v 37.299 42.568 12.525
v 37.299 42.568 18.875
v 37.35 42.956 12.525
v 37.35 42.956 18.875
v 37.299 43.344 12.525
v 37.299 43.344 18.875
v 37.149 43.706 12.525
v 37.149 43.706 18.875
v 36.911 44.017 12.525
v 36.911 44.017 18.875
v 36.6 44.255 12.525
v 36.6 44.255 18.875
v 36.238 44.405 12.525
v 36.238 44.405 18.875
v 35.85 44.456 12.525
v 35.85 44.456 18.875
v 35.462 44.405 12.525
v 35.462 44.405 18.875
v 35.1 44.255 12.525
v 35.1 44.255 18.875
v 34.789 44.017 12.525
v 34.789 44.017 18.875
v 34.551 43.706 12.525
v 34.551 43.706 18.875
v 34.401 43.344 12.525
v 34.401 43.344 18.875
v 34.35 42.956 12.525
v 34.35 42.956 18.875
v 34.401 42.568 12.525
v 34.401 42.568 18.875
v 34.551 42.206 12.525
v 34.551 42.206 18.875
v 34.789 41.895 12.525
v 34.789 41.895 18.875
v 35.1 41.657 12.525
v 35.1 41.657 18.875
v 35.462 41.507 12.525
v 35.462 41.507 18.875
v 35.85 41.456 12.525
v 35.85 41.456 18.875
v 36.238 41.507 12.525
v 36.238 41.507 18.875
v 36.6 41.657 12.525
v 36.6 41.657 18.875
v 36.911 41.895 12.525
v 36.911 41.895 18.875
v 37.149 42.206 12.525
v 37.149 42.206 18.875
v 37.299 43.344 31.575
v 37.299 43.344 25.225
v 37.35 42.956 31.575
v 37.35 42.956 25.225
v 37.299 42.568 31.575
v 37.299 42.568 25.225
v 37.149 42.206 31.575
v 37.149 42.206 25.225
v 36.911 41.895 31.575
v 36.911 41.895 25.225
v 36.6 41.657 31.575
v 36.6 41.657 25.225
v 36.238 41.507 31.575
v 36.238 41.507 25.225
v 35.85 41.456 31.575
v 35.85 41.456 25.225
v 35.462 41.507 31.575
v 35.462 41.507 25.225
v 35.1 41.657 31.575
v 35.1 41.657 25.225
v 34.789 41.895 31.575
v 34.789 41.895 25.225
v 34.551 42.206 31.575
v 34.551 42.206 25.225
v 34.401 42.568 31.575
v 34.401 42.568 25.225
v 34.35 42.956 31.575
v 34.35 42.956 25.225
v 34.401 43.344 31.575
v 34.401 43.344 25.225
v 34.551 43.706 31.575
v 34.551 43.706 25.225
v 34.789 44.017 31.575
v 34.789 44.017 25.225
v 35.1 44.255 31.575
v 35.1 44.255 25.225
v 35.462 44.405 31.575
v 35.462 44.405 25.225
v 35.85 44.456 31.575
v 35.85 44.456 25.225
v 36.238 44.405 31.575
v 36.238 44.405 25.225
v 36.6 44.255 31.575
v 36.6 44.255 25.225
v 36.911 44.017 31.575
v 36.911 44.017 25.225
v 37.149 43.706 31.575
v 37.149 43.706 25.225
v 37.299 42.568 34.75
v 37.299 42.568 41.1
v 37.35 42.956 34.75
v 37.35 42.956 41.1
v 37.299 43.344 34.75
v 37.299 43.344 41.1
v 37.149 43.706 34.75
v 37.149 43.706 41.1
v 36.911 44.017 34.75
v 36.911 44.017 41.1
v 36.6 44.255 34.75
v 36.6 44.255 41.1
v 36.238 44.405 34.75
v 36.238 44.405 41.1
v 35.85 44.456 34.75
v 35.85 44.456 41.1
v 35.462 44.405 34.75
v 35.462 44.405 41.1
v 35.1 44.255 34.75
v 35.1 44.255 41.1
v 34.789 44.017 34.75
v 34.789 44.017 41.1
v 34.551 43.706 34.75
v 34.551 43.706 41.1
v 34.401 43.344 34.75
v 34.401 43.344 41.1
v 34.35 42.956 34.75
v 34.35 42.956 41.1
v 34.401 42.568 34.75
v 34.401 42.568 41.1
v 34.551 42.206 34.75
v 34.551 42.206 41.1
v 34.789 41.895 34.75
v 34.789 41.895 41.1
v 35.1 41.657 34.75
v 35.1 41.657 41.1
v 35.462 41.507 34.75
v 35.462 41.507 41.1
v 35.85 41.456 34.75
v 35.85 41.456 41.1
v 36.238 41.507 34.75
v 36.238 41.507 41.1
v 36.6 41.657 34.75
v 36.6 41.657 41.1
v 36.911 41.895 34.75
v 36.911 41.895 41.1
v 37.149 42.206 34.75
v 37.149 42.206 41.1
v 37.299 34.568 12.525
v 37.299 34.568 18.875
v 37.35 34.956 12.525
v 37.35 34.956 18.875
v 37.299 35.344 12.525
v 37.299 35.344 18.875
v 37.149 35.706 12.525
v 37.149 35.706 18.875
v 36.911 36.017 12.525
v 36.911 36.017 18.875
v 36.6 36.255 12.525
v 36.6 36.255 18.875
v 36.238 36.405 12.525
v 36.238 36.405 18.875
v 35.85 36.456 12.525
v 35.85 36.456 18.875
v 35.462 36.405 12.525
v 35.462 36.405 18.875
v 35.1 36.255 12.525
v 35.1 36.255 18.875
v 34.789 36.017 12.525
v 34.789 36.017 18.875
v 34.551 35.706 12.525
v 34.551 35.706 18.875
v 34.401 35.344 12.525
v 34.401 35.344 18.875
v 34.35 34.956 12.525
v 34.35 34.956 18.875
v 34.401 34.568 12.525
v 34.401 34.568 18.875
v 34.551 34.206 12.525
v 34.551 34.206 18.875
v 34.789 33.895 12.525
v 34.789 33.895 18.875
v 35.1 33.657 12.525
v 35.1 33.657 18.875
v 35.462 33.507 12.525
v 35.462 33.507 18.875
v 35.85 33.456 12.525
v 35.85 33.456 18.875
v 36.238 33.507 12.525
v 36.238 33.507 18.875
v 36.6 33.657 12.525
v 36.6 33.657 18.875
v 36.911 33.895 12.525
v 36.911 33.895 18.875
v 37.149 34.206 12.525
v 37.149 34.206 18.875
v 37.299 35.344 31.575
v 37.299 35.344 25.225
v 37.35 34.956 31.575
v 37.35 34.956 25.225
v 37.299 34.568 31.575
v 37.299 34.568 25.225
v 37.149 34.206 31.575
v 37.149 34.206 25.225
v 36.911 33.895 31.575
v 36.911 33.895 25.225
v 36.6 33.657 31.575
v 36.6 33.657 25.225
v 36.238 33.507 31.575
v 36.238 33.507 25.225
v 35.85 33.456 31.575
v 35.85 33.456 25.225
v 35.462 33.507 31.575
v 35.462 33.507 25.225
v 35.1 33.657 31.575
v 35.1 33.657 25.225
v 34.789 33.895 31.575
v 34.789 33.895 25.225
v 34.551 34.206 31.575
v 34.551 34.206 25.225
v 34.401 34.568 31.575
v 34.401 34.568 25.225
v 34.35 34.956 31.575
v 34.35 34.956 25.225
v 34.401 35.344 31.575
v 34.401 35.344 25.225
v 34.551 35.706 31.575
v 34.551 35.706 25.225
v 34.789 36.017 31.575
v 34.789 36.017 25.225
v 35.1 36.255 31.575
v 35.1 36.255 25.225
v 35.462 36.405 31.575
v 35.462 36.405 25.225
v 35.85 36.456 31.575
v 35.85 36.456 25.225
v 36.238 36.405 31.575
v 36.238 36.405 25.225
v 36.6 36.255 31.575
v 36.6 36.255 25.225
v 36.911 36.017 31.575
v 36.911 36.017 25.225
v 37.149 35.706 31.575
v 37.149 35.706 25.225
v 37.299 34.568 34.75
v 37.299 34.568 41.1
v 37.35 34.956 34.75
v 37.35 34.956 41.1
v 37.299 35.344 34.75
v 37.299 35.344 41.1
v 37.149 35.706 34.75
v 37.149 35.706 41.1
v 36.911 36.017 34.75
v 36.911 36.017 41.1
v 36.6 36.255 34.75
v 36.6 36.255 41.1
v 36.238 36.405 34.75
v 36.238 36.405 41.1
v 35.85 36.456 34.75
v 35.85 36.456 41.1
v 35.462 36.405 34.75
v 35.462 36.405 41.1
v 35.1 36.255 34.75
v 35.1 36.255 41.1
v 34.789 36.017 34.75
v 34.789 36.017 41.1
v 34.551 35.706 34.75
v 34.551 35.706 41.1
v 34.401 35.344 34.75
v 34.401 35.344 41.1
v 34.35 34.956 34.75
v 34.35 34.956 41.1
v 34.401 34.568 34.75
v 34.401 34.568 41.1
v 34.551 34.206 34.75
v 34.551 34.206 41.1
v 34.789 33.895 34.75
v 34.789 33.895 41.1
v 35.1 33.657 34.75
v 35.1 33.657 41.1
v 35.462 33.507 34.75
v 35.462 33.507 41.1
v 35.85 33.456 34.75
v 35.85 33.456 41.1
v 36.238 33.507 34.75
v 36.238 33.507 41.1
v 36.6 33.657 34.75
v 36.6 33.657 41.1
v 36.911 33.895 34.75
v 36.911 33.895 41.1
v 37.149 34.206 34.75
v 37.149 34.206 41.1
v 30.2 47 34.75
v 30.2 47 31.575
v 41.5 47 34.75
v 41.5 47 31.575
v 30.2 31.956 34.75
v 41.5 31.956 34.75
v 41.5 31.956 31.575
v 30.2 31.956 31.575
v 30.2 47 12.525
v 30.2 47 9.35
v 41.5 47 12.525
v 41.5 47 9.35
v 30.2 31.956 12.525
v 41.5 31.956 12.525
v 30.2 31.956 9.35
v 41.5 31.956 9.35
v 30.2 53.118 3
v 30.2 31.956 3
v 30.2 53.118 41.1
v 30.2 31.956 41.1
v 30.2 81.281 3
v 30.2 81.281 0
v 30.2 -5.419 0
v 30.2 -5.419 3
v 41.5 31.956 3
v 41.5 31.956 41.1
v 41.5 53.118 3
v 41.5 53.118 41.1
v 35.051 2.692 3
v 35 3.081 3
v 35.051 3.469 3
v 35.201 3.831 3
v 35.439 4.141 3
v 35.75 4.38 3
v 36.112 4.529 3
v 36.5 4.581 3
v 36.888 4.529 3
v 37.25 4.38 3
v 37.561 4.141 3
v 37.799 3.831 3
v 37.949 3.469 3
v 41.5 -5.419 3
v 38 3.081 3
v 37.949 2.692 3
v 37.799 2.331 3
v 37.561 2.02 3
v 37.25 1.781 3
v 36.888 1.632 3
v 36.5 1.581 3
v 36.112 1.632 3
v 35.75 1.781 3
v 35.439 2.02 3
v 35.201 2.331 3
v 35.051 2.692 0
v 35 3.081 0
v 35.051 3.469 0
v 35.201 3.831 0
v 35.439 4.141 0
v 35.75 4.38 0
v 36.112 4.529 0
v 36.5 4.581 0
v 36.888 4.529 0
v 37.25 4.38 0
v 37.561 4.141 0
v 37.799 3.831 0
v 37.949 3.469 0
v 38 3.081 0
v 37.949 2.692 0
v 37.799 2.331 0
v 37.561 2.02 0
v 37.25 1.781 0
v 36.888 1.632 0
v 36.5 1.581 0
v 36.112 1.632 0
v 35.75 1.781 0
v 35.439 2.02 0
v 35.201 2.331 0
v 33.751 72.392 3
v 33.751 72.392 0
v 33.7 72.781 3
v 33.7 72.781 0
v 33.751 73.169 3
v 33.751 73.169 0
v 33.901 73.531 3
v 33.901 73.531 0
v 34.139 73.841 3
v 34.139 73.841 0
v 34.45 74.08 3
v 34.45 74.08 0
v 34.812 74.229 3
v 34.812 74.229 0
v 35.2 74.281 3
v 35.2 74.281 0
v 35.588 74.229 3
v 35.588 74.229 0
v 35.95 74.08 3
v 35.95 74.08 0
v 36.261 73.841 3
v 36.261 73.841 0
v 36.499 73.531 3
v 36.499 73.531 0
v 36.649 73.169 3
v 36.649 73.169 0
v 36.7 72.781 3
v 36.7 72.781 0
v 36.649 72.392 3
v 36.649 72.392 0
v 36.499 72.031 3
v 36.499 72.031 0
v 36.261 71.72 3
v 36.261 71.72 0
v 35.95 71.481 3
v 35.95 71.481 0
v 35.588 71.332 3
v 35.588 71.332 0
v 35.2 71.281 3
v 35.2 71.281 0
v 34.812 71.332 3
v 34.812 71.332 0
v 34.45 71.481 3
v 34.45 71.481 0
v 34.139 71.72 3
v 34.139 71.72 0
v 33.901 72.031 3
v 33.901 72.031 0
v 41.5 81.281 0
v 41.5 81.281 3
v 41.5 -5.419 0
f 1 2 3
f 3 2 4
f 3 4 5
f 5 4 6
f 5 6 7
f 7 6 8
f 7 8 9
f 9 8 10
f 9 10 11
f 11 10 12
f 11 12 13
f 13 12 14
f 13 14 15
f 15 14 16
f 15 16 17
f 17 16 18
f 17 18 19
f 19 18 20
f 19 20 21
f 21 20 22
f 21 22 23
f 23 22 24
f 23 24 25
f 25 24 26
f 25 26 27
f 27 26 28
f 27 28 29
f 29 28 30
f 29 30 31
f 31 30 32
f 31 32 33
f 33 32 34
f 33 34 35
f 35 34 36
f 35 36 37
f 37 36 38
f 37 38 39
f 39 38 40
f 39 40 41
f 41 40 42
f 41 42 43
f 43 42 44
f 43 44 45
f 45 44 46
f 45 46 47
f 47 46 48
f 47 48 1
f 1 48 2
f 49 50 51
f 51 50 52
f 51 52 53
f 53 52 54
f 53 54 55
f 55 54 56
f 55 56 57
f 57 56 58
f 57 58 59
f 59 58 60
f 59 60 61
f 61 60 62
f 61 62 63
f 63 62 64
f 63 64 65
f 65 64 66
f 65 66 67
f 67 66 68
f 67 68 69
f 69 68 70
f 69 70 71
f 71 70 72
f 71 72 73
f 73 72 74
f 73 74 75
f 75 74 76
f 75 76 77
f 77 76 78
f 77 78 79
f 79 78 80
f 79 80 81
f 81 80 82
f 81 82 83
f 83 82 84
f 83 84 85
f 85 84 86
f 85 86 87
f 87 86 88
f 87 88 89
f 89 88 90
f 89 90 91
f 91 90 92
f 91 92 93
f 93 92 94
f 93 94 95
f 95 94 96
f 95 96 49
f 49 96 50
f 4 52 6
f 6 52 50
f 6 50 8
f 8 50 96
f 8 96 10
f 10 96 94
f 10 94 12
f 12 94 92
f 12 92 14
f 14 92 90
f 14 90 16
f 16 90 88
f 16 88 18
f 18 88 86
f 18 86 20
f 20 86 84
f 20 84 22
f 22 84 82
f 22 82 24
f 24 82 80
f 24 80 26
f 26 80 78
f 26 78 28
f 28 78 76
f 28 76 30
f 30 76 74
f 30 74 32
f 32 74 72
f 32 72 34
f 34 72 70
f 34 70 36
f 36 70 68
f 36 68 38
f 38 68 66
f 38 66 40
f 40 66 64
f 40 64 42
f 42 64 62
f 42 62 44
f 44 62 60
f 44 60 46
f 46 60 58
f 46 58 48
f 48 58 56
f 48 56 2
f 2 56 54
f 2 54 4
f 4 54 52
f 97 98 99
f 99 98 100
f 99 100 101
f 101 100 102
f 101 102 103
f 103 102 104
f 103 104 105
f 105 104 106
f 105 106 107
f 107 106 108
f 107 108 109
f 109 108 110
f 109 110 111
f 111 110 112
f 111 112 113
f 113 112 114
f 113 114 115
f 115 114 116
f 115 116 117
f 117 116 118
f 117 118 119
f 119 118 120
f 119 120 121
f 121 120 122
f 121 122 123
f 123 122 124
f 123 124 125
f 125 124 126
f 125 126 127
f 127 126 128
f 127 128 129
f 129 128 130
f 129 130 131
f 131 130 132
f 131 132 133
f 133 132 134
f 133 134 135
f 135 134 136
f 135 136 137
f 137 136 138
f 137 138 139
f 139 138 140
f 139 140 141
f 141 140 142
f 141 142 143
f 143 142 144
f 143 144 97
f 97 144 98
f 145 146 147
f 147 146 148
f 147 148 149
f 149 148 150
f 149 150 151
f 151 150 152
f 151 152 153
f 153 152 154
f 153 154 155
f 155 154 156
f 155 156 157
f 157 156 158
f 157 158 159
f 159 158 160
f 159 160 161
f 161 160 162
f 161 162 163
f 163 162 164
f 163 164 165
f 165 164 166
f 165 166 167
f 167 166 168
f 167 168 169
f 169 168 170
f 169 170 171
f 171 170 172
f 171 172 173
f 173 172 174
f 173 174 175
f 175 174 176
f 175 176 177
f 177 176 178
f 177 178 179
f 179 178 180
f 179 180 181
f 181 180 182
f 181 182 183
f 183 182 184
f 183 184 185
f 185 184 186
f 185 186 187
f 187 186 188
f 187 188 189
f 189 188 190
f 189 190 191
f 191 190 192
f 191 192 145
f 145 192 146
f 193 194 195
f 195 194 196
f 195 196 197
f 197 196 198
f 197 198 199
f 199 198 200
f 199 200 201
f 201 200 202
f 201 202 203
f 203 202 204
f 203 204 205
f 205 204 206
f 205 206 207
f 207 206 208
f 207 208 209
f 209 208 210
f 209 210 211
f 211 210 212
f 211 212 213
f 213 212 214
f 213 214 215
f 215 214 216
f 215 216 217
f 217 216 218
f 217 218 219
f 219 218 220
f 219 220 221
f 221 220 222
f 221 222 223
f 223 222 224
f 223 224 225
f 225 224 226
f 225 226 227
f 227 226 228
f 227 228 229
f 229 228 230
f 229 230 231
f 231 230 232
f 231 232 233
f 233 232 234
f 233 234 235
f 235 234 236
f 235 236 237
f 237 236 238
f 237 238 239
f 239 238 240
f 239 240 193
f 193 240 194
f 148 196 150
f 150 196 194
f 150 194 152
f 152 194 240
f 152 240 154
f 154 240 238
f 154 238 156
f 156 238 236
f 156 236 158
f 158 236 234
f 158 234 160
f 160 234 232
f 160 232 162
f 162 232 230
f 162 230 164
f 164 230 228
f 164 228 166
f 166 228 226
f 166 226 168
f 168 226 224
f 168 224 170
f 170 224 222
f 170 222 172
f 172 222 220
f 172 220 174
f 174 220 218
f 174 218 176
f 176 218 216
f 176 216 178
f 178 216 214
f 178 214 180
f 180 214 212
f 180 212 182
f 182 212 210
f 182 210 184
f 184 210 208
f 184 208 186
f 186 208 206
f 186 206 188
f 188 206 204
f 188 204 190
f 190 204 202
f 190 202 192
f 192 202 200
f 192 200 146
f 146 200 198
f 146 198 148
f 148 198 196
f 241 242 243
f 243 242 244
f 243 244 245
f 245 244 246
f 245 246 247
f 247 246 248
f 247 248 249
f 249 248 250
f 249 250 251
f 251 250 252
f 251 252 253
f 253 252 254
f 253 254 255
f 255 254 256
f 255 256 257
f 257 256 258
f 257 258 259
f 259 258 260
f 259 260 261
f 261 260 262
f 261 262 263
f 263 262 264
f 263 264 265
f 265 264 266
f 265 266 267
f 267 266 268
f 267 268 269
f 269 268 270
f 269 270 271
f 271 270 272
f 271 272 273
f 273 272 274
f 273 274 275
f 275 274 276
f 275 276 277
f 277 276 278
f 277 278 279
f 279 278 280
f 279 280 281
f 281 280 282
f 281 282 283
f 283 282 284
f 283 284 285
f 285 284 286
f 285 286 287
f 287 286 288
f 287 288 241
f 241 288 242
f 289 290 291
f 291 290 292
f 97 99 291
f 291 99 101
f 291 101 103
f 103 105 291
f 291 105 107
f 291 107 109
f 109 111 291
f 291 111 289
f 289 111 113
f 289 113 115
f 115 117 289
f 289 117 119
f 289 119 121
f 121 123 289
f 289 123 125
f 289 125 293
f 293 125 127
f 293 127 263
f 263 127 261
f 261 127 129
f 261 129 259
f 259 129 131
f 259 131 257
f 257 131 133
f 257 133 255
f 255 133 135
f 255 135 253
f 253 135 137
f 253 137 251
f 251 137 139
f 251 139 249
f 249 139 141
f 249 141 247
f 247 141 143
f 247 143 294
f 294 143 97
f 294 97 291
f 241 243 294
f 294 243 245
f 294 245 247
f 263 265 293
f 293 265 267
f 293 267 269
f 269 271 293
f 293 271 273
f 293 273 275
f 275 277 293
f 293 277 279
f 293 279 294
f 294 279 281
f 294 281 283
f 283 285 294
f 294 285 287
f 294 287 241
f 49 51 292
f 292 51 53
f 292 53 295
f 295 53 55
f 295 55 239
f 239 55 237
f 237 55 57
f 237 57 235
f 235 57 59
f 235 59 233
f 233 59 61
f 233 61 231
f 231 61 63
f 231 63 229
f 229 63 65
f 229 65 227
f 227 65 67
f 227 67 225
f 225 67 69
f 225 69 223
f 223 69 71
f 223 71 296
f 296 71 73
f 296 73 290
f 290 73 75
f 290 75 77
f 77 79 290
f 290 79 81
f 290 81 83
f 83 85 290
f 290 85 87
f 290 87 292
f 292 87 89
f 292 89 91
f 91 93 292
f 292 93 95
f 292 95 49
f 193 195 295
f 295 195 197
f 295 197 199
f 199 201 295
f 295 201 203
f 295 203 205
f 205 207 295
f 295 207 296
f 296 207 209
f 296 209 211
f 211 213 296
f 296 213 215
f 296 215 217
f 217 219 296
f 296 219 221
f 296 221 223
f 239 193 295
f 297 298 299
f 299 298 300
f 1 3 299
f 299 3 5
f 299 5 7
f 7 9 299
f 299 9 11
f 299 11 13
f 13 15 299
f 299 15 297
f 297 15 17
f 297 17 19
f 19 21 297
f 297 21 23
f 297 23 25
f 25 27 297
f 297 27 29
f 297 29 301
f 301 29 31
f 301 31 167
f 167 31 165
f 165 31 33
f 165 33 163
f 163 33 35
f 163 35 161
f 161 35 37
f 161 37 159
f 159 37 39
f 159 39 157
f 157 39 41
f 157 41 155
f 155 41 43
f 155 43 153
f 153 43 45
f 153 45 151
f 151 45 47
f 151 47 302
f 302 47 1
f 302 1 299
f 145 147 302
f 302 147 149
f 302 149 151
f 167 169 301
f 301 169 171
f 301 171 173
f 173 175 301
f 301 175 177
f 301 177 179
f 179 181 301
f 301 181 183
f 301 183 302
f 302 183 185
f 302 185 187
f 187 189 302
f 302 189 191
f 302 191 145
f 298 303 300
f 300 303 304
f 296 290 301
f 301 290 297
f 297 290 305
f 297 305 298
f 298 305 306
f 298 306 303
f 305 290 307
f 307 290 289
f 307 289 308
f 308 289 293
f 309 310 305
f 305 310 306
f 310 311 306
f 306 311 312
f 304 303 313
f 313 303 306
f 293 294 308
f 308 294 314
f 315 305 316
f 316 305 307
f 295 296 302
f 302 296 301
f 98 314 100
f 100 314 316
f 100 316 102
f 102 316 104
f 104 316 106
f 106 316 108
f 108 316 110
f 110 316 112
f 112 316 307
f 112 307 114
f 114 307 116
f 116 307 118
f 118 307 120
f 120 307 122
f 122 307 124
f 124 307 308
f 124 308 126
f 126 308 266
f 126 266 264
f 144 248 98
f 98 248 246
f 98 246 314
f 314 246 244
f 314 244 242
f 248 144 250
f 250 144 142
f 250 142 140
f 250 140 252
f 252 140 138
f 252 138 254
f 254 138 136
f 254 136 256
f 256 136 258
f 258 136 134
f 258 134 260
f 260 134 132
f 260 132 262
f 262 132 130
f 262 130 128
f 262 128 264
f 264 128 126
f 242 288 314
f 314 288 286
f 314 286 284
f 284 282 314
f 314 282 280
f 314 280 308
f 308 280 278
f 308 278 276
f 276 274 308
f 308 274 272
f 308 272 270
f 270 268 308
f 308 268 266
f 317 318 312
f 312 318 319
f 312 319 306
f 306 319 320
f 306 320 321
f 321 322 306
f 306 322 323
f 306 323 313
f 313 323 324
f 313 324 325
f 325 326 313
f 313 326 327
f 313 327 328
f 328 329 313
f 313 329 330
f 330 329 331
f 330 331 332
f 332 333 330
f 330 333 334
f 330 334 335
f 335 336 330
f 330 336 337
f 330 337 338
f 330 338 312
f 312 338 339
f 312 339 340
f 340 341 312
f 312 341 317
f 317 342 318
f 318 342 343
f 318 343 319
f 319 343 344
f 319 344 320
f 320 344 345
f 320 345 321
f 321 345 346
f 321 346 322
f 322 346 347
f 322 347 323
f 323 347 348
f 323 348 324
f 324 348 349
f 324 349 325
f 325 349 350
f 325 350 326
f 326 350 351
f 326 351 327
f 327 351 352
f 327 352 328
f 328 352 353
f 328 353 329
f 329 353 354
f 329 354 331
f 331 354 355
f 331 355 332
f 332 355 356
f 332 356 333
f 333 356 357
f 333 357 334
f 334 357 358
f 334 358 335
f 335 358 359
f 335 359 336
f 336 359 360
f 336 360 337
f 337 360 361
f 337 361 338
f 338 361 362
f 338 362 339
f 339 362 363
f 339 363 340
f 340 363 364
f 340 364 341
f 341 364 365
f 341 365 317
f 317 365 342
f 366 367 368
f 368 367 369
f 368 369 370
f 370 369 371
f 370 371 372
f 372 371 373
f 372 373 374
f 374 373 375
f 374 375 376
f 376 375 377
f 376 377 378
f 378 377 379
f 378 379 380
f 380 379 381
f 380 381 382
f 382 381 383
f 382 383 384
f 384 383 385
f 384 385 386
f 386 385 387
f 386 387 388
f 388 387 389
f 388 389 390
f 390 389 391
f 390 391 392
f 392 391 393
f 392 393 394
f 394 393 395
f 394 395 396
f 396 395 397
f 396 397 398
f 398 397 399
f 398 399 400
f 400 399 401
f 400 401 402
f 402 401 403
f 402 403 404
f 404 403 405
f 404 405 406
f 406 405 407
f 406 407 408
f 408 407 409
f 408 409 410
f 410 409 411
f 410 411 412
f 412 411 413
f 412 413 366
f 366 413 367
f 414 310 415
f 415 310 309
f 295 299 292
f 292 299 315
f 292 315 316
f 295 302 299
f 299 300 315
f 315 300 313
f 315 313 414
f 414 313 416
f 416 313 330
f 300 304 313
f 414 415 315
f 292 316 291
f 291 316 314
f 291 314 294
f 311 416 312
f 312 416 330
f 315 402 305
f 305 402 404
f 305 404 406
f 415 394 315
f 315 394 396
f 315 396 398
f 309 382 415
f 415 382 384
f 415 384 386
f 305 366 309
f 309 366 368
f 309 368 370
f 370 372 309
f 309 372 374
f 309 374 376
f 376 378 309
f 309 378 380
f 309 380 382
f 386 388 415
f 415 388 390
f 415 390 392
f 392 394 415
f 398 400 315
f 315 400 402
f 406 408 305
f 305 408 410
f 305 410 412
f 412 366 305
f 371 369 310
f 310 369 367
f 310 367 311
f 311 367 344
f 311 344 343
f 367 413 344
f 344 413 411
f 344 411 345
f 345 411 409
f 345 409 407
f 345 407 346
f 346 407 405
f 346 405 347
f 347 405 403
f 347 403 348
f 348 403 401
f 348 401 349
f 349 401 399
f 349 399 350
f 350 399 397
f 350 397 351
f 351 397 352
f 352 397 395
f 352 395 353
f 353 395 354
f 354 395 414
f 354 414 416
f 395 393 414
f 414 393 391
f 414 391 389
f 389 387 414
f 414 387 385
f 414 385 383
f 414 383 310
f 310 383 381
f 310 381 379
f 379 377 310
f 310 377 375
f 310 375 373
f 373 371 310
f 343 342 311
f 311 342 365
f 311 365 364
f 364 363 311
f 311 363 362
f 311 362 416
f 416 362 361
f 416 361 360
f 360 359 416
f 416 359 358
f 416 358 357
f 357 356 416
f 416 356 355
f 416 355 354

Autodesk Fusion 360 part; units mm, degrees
sketch "Sketch1" plane through (0, 0, 0) normal (0, 0, 1) x (1, 0, 0)
  line L0 (30.2, 81.2805) -> (41.5, 81.2805)
  line L1 (41.5, 81.2805) -> (41.5, -5.4195)
  line L2 (41.5, -5.4195) -> (30.2, -5.4195)
  line L3 (30.2, -5.4195) -> (30.2, 81.2805)
  circle A0 centre (36.5, 3.0805) radius 1.5
  circle A1 centre (35.2, 72.7805) radius 1.5
  dimension "d1" = 1.3
  dimension "d2" = 69.7
  dimension "d3" = 3
  dimension "d4" = 3
  dimension "d5" = 5
  dimension "d6" = 5
  dimension "d7" = 8.5
  dimension "d8" = 8.5
extrude "Extrude1" add sketch "Sketch1" along normal blind 3
sketch "Sketch2" plane through (0, 0, 3) normal (0, 0, 1) x (-1, 0, 0)
  circle A0 centre (-36.5, -3.0805) radius 1.5
  circle A1 centre (-35.2, -72.7805) radius 1.5
  line L0 (-30.2, 5.4195) -> (-41.5, 5.4195)
  line L1 (-41.5, 5.4195) -> (-41.5, -81.2805)
  line L2 (-41.5, -81.2805) -> (-30.2, -81.2805)
  line L3 (-30.2, -81.2805) -> (-30.2, 5.4195)
  line L4 (-30.2, -53.1183) -> (-41.5, -53.1183)
  line L5 (-41.5, -53.1183) -> (-41.5, -31.956)
  line L6 (-41.5, -31.956) -> (-30.2, -31.956)
  line L7 (-30.2, -31.956) -> (-30.2, -53.1183)
extrude "Extrude2" add sketch "Sketch2" along normal blind 38.1 contours L1 L3 L4 L5 L6 L7
sketch "Sketch3" plane through (41.5, 0, 0) normal (1, 0, 0) x (0, 1, 0)
  line L0 (-5.4195, 0) -> (81.2805, 0)
  line L1 (81.2805, 0) -> (81.2805, 3)
  line L2 (81.2805, 3) -> (53.1183, 3)
  line L3 (53.1183, 3) -> (53.1183, 41.1)
  line L4 (53.1183, 41.1) -> (31.956, 41.1)
  line L5 (31.956, 41.1) -> (31.956, 3)
  line L6 (31.956, 3) -> (-5.4195, 3)
  line L7 (-5.4195, 3) -> (-5.4195, 0)
  line L8 (31.956, 34.75) -> (47, 34.75)
  line L9 (47, 34.75) -> (47, 31.575)
  line L10 (47, 31.575) -> (31.956, 31.575)
  line L11 (31.956, 31.575) -> (31.956, 34.75)
  line L12 (31.956, 12.525) -> (47, 12.525)
  line L13 (47, 12.525) -> (47, 9.35)
  line L14 (47, 9.35) -> (31.956, 9.35)
  line L15 (31.956, 9.35) -> (31.956, 12.525)
  dimension "d13" = 3.175
  dimension "d14" = 3.175
  dimension "d15" = 19.05
  dimension "d16" = 6.35
extrude "Extrude3" cut sketch "Sketch3" against normal blind 15 contours L5 L12 L13 L14 L15 | L5 L8 L9 L10 L11
sketch "Sketch4" plane through (0, 0, 41.1) normal (0, 0, 1) x (-1, 0, 0)
  line L0 (-30.2, -31.956) -> (-41.5, -31.956)
  line L1 (-41.5, -31.956) -> (-41.5, -53.1183)
  line L2 (-41.5, -53.1183) -> (-30.2, -53.1183)
  line L3 (-30.2, -53.1183) -> (-30.2, -31.956)
  circle A0 centre (-35.85, -34.956) radius 1.5
  circle A1 centre (-35.85, -42.956) radius 1.5
  dimension "d19" = 3
  dimension "d20" = 3
  dimension "d21" = 3
  dimension "d22" = 8
extrude "Extrude4" cut sketch "Sketch4" against normal blind 30 contours A0 | A1
